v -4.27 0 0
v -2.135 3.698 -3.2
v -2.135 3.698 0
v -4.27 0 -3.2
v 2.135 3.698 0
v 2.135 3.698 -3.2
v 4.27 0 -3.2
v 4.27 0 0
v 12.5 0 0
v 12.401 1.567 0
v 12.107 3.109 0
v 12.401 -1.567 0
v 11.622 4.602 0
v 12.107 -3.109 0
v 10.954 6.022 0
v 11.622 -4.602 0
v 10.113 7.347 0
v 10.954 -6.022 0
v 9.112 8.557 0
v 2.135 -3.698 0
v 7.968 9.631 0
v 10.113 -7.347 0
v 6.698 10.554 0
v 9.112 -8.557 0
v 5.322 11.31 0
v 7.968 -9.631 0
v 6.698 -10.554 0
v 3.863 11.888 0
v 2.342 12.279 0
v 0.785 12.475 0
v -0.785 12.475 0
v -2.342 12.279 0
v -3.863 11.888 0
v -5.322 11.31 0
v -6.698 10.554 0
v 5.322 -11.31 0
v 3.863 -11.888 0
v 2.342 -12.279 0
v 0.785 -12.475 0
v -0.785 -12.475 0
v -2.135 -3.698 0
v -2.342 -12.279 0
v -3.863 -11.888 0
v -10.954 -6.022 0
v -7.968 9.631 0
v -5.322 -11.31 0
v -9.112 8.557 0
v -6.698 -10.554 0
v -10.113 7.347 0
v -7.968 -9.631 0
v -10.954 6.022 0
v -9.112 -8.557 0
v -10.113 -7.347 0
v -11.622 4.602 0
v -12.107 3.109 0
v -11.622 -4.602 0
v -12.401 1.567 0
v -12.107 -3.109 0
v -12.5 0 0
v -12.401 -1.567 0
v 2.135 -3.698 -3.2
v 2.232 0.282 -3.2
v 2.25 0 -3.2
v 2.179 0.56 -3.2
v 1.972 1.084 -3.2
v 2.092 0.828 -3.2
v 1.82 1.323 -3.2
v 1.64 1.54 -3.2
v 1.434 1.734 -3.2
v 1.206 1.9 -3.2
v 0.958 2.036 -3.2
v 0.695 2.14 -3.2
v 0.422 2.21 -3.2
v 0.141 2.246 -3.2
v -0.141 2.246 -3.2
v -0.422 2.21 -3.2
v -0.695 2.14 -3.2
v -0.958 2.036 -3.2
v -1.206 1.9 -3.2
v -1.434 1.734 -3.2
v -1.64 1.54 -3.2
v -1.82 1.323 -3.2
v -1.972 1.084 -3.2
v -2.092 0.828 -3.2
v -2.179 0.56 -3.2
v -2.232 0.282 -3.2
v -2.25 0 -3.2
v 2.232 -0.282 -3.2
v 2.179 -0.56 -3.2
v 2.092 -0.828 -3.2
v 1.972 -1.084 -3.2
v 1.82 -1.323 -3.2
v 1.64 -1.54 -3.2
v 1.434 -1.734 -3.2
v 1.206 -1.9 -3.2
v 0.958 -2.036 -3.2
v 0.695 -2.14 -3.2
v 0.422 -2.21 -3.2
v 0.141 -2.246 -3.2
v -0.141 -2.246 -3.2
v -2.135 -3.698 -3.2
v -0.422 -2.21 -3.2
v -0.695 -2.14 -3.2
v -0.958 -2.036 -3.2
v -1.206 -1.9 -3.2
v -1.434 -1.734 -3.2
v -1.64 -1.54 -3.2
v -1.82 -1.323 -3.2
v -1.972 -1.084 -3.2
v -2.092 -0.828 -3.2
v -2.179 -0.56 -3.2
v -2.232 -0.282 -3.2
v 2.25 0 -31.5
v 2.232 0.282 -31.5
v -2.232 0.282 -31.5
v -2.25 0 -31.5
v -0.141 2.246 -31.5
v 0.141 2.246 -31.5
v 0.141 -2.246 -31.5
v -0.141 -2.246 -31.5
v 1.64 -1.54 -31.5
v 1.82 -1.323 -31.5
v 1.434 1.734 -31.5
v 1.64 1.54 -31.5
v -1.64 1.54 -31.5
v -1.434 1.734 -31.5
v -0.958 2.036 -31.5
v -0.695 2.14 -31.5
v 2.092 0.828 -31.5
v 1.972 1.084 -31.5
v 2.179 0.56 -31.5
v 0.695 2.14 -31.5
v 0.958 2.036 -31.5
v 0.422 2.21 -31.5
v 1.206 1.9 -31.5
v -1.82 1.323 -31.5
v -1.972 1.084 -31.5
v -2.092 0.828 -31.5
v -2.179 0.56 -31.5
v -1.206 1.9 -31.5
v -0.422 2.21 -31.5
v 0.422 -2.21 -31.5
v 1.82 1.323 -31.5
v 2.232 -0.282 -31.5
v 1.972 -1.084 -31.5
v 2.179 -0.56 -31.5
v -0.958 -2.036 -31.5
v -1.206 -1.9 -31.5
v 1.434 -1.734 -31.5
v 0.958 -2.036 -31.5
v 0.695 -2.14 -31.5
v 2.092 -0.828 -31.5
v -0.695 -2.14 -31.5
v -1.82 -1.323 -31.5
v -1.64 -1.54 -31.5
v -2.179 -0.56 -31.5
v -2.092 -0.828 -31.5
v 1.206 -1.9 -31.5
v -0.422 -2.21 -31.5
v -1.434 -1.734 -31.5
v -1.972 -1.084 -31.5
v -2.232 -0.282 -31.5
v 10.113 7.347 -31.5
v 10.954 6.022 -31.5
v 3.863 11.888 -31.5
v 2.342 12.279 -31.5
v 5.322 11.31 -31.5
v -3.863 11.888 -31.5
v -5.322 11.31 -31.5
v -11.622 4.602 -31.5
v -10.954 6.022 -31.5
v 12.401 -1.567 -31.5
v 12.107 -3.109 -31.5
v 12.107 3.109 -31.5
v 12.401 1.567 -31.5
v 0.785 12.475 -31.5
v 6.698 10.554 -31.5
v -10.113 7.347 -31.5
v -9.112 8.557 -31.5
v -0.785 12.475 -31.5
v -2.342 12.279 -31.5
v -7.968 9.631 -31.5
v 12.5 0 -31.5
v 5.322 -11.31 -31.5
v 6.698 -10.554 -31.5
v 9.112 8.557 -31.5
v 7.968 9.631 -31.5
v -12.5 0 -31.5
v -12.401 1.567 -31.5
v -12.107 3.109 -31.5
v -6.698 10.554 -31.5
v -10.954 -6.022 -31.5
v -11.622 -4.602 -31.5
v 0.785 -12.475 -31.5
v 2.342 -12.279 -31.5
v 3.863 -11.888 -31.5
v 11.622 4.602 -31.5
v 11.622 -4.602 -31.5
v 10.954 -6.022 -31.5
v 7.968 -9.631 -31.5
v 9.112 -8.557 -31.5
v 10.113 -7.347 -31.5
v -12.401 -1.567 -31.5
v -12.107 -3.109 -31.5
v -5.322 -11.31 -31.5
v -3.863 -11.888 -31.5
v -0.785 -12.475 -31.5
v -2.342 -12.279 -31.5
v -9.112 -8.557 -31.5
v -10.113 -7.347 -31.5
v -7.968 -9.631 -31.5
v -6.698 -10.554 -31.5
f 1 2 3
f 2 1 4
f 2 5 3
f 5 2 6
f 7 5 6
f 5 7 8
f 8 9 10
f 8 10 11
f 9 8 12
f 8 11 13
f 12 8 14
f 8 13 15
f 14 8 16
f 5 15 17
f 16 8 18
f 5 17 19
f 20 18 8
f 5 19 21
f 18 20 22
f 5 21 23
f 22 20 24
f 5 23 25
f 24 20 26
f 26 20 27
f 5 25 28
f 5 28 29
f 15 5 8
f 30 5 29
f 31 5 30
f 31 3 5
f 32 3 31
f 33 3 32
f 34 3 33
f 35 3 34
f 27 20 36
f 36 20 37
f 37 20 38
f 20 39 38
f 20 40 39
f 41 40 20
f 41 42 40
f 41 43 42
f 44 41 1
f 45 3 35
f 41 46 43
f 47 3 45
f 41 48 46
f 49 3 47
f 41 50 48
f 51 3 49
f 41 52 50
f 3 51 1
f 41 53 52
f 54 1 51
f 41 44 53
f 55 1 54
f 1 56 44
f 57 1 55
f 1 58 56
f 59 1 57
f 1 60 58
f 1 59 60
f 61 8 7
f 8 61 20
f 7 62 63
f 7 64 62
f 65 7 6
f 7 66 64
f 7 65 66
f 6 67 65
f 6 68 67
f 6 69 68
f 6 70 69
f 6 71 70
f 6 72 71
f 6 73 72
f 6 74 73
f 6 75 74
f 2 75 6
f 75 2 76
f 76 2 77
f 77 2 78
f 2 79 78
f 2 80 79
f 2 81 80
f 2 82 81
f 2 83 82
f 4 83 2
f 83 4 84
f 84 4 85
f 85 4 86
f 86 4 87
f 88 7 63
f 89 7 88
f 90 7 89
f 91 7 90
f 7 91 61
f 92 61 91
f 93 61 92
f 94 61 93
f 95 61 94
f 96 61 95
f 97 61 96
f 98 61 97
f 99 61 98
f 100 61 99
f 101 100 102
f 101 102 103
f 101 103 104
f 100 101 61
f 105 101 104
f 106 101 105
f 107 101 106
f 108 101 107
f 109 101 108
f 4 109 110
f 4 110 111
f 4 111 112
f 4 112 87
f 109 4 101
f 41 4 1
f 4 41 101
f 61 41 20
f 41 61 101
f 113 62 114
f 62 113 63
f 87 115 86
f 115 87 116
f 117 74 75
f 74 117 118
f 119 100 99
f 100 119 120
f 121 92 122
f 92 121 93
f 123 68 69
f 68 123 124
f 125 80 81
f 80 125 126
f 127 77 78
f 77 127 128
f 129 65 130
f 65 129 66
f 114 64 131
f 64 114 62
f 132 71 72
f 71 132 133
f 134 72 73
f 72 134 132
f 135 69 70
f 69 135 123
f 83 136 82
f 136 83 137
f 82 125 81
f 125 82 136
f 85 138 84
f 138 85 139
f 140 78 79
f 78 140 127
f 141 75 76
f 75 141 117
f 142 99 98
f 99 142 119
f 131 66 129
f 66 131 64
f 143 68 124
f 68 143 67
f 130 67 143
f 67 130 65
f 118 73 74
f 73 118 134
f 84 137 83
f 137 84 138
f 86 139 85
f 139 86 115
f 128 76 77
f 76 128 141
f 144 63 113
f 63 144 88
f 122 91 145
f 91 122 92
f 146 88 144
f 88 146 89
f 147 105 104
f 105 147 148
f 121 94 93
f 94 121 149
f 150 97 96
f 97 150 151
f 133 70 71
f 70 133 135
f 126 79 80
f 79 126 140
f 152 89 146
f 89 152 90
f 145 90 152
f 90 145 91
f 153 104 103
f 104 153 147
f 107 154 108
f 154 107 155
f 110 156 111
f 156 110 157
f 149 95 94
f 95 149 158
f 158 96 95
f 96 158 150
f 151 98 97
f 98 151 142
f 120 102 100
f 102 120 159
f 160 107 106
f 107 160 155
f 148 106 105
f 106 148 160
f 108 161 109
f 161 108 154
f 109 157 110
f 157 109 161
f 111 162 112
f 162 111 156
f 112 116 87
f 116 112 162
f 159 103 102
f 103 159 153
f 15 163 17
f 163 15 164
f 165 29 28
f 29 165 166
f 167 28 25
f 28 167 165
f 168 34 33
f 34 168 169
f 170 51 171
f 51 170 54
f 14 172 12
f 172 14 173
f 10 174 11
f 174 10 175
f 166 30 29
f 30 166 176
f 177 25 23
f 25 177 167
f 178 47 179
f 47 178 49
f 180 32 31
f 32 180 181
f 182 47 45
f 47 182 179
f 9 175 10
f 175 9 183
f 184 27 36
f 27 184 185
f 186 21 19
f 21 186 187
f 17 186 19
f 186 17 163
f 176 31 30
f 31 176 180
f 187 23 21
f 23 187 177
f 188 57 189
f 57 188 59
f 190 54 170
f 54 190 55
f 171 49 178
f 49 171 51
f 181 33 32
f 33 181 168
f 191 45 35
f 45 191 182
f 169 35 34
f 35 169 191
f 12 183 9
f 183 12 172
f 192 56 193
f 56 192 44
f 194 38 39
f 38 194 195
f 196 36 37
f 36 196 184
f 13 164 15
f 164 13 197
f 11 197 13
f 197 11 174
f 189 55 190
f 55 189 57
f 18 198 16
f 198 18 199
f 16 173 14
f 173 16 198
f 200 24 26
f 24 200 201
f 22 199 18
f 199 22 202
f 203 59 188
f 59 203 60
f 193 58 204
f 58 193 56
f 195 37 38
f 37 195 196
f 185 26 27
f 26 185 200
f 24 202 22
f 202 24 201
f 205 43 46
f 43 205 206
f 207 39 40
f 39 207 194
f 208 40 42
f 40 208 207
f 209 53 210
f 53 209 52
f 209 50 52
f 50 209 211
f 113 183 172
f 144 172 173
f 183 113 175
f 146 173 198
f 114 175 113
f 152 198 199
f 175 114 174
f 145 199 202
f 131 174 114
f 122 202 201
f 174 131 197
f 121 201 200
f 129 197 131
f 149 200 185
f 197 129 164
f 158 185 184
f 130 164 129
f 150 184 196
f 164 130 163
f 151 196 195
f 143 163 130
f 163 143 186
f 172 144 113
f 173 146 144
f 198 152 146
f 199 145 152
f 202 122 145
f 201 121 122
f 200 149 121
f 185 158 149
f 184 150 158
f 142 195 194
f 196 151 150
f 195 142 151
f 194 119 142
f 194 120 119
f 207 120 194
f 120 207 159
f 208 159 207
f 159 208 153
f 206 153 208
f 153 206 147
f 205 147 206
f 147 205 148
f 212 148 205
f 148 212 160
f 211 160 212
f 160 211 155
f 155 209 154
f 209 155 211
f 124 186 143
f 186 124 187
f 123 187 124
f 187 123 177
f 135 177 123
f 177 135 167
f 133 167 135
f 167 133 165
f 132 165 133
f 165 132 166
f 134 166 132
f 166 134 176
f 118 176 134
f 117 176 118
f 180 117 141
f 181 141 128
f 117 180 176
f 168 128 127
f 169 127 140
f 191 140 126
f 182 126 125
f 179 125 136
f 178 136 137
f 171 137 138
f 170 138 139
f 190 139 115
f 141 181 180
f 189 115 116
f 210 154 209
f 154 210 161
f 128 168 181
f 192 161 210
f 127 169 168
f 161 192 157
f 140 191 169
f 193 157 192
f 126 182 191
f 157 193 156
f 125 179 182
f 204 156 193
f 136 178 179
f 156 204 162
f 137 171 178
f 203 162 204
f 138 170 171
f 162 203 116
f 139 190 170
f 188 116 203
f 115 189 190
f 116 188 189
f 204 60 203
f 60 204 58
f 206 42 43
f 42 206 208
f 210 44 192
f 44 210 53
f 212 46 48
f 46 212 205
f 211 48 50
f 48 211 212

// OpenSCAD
$fn = 50;

difference() {
	union() {
		translate(v = [0, 0, -31.5]) {
			cylinder(h = 31.5, r = 12.5);
		}
	}
	union() {
		translate(v = [0, 0, 0]) {
			rotate(a = [0, 0, 0]) {
				difference() {
					union() {
						translate(v = [0, 0, -3.2]) {
							linear_extrude(height = 3.2) {
								polygon(points = [[4.2698, 0.0], [2.1349000000000005, 3.697755269078796], [-2.134899999999999, 3.6977552690787965], [-4.2698, 5.228996902999369e-16], [-2.134900000000002, -3.6977552690787956], [2.1348999999999974, -3.697755269078798]]);
							}
						}
					}
					union();
				}
			}
		}
		#translate(v = [0, 0, -100.0]) {
			cylinder(h = 200, r = 2.25);
		}
	}
}
